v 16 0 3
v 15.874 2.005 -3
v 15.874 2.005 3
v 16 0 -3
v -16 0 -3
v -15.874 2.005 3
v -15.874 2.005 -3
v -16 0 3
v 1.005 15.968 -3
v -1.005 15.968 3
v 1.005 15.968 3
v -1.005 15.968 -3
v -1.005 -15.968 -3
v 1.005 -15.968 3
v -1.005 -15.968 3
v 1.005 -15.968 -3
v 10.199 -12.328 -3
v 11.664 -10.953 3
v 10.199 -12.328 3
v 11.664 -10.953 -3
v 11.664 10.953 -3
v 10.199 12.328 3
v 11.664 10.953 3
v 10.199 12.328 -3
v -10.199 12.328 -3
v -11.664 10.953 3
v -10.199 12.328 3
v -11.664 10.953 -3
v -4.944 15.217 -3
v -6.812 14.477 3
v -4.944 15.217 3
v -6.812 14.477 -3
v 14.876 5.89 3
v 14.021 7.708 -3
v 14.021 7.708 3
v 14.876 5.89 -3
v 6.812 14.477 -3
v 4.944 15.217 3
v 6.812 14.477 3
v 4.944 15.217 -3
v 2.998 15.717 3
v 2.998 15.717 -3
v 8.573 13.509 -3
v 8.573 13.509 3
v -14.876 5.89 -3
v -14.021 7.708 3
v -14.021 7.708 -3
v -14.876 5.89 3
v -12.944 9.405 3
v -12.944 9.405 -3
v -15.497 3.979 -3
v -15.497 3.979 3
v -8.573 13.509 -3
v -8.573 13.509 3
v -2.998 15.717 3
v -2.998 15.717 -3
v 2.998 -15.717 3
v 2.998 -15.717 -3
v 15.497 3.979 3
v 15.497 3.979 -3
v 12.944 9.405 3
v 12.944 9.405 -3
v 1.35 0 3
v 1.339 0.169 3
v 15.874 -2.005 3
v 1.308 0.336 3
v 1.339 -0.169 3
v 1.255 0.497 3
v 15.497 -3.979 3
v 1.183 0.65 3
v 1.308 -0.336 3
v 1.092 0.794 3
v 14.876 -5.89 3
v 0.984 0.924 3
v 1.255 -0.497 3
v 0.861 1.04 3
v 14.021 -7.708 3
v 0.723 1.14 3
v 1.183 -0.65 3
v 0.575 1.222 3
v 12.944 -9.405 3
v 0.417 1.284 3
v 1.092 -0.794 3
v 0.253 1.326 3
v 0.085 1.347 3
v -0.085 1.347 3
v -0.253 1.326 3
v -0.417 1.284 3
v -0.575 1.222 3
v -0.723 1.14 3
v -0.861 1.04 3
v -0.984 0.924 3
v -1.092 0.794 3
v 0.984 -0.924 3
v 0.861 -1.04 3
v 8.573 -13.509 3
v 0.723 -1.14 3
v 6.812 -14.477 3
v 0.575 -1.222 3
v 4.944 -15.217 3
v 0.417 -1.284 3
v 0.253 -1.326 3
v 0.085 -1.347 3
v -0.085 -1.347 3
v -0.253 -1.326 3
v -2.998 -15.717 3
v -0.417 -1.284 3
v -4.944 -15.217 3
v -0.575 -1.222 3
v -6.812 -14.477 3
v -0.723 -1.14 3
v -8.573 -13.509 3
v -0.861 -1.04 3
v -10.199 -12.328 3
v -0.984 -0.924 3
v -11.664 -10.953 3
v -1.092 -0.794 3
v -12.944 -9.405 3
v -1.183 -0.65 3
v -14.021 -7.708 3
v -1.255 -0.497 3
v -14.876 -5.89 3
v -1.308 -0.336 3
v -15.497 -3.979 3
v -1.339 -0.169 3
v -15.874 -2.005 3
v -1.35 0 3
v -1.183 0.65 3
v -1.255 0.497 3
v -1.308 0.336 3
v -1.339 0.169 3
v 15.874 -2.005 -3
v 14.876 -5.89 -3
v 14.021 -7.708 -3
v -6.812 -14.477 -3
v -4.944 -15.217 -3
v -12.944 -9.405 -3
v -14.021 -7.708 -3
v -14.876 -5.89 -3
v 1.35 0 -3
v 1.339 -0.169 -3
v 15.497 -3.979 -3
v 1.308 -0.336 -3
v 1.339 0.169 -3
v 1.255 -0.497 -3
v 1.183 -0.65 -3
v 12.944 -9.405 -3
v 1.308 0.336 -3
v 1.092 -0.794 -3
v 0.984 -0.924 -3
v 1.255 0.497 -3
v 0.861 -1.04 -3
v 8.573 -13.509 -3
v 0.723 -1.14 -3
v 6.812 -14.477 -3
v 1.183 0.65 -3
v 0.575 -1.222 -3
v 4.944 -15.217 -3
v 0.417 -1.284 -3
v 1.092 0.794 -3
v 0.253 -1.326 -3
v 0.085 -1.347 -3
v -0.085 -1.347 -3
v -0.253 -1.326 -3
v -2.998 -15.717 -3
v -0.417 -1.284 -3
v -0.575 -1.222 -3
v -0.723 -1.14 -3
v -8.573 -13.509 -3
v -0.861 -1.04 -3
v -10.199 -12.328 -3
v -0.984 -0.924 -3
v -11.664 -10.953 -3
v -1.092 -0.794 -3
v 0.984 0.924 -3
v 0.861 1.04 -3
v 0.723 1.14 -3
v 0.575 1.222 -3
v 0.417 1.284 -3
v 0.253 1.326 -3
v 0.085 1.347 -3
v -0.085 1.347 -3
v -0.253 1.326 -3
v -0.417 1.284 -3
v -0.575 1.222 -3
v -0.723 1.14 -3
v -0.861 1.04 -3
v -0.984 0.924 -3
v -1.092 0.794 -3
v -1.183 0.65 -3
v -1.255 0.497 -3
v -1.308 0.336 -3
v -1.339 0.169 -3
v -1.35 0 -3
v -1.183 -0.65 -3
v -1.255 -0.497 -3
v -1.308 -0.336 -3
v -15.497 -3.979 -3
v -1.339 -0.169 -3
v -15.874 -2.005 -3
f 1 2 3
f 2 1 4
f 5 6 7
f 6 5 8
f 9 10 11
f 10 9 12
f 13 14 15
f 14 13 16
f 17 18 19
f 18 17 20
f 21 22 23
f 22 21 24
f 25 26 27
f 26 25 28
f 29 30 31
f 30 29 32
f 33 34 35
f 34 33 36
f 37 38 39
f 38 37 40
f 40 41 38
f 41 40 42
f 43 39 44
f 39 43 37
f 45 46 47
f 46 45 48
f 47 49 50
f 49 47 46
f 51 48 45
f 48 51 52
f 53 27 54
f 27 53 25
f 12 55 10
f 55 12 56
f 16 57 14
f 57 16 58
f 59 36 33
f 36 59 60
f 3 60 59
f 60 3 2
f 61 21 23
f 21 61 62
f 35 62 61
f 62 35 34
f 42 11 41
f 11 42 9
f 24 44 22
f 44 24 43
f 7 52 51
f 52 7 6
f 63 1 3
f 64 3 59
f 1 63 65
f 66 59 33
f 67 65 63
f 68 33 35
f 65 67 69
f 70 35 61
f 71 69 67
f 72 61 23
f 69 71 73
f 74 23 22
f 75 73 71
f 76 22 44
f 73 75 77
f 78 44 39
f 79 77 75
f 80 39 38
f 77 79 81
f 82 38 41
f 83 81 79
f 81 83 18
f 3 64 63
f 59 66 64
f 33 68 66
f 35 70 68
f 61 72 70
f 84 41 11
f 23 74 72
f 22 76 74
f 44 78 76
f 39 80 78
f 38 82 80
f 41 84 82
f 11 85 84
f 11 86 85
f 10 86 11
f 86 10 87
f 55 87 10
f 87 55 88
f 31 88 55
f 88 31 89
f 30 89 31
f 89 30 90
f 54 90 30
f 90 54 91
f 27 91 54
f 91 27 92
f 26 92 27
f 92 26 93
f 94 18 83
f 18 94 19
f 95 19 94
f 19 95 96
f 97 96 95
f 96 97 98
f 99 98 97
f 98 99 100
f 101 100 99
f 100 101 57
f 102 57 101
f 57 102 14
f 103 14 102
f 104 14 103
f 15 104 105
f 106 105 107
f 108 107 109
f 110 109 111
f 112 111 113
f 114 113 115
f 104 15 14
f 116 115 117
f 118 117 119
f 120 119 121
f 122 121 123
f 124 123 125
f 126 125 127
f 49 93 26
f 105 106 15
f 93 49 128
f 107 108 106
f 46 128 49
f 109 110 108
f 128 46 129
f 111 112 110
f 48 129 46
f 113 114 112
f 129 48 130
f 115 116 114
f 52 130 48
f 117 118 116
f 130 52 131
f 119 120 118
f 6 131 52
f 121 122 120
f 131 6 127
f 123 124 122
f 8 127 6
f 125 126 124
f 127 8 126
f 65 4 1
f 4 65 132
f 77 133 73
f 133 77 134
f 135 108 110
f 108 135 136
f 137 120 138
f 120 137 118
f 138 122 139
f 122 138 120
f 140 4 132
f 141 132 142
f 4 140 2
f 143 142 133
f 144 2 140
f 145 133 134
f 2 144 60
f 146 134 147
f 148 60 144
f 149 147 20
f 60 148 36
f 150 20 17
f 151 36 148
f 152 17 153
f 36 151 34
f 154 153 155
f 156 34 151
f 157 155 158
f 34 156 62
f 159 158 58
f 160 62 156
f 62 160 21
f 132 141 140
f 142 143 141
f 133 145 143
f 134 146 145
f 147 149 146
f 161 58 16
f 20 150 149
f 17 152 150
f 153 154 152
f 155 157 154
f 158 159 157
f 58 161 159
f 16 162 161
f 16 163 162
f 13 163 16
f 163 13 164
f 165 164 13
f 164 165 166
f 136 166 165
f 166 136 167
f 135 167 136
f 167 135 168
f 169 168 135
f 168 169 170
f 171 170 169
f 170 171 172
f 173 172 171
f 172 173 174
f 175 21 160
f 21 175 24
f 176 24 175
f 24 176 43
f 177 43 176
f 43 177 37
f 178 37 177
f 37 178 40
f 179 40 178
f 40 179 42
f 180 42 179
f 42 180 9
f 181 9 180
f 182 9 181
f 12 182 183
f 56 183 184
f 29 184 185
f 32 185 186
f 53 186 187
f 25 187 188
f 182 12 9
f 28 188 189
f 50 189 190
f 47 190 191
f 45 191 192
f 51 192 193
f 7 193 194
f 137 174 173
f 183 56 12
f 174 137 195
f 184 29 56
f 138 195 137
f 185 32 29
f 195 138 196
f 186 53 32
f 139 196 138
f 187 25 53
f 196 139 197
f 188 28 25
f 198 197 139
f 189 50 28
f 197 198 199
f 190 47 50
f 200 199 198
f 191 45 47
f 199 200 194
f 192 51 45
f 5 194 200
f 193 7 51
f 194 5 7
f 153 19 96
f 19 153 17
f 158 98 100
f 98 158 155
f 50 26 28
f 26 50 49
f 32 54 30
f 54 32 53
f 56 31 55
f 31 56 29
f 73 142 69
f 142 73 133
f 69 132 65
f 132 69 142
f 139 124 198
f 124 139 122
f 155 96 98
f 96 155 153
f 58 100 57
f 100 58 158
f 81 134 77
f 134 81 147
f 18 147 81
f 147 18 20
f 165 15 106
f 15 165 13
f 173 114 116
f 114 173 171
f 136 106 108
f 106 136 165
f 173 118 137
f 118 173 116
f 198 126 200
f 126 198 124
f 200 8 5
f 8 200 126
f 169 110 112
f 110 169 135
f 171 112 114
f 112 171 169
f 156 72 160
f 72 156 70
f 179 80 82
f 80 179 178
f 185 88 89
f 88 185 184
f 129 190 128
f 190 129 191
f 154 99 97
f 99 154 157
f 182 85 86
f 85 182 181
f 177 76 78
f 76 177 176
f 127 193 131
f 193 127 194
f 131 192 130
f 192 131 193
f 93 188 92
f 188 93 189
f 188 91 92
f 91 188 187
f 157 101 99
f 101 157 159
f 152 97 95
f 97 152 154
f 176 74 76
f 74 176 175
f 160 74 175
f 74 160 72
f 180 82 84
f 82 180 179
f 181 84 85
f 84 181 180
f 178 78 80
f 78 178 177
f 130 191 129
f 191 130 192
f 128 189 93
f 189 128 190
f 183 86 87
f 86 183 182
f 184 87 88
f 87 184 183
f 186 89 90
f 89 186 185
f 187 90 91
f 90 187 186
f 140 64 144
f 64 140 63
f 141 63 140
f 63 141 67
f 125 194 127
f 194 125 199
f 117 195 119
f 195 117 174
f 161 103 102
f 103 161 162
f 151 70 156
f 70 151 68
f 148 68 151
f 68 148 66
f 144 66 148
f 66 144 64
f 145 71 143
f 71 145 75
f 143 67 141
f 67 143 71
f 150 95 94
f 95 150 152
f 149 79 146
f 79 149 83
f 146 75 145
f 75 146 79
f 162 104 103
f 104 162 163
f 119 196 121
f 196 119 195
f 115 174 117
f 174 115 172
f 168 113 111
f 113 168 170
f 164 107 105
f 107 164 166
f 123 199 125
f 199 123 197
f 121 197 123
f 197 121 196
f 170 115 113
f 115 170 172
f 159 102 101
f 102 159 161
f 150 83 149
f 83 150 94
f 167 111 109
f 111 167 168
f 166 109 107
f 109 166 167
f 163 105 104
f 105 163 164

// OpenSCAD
$fn = 50;


difference() {
	union() {
		translate(v = [0, 0, -3.0000000000]) {
			cylinder(h = 6, r = 16.0000000000);
		}
	}
	union() {
		translate(v = [0, 0, -100.0000000000]) {
			cylinder(h = 200, r = 1.3500000000);
		}
	}
}
